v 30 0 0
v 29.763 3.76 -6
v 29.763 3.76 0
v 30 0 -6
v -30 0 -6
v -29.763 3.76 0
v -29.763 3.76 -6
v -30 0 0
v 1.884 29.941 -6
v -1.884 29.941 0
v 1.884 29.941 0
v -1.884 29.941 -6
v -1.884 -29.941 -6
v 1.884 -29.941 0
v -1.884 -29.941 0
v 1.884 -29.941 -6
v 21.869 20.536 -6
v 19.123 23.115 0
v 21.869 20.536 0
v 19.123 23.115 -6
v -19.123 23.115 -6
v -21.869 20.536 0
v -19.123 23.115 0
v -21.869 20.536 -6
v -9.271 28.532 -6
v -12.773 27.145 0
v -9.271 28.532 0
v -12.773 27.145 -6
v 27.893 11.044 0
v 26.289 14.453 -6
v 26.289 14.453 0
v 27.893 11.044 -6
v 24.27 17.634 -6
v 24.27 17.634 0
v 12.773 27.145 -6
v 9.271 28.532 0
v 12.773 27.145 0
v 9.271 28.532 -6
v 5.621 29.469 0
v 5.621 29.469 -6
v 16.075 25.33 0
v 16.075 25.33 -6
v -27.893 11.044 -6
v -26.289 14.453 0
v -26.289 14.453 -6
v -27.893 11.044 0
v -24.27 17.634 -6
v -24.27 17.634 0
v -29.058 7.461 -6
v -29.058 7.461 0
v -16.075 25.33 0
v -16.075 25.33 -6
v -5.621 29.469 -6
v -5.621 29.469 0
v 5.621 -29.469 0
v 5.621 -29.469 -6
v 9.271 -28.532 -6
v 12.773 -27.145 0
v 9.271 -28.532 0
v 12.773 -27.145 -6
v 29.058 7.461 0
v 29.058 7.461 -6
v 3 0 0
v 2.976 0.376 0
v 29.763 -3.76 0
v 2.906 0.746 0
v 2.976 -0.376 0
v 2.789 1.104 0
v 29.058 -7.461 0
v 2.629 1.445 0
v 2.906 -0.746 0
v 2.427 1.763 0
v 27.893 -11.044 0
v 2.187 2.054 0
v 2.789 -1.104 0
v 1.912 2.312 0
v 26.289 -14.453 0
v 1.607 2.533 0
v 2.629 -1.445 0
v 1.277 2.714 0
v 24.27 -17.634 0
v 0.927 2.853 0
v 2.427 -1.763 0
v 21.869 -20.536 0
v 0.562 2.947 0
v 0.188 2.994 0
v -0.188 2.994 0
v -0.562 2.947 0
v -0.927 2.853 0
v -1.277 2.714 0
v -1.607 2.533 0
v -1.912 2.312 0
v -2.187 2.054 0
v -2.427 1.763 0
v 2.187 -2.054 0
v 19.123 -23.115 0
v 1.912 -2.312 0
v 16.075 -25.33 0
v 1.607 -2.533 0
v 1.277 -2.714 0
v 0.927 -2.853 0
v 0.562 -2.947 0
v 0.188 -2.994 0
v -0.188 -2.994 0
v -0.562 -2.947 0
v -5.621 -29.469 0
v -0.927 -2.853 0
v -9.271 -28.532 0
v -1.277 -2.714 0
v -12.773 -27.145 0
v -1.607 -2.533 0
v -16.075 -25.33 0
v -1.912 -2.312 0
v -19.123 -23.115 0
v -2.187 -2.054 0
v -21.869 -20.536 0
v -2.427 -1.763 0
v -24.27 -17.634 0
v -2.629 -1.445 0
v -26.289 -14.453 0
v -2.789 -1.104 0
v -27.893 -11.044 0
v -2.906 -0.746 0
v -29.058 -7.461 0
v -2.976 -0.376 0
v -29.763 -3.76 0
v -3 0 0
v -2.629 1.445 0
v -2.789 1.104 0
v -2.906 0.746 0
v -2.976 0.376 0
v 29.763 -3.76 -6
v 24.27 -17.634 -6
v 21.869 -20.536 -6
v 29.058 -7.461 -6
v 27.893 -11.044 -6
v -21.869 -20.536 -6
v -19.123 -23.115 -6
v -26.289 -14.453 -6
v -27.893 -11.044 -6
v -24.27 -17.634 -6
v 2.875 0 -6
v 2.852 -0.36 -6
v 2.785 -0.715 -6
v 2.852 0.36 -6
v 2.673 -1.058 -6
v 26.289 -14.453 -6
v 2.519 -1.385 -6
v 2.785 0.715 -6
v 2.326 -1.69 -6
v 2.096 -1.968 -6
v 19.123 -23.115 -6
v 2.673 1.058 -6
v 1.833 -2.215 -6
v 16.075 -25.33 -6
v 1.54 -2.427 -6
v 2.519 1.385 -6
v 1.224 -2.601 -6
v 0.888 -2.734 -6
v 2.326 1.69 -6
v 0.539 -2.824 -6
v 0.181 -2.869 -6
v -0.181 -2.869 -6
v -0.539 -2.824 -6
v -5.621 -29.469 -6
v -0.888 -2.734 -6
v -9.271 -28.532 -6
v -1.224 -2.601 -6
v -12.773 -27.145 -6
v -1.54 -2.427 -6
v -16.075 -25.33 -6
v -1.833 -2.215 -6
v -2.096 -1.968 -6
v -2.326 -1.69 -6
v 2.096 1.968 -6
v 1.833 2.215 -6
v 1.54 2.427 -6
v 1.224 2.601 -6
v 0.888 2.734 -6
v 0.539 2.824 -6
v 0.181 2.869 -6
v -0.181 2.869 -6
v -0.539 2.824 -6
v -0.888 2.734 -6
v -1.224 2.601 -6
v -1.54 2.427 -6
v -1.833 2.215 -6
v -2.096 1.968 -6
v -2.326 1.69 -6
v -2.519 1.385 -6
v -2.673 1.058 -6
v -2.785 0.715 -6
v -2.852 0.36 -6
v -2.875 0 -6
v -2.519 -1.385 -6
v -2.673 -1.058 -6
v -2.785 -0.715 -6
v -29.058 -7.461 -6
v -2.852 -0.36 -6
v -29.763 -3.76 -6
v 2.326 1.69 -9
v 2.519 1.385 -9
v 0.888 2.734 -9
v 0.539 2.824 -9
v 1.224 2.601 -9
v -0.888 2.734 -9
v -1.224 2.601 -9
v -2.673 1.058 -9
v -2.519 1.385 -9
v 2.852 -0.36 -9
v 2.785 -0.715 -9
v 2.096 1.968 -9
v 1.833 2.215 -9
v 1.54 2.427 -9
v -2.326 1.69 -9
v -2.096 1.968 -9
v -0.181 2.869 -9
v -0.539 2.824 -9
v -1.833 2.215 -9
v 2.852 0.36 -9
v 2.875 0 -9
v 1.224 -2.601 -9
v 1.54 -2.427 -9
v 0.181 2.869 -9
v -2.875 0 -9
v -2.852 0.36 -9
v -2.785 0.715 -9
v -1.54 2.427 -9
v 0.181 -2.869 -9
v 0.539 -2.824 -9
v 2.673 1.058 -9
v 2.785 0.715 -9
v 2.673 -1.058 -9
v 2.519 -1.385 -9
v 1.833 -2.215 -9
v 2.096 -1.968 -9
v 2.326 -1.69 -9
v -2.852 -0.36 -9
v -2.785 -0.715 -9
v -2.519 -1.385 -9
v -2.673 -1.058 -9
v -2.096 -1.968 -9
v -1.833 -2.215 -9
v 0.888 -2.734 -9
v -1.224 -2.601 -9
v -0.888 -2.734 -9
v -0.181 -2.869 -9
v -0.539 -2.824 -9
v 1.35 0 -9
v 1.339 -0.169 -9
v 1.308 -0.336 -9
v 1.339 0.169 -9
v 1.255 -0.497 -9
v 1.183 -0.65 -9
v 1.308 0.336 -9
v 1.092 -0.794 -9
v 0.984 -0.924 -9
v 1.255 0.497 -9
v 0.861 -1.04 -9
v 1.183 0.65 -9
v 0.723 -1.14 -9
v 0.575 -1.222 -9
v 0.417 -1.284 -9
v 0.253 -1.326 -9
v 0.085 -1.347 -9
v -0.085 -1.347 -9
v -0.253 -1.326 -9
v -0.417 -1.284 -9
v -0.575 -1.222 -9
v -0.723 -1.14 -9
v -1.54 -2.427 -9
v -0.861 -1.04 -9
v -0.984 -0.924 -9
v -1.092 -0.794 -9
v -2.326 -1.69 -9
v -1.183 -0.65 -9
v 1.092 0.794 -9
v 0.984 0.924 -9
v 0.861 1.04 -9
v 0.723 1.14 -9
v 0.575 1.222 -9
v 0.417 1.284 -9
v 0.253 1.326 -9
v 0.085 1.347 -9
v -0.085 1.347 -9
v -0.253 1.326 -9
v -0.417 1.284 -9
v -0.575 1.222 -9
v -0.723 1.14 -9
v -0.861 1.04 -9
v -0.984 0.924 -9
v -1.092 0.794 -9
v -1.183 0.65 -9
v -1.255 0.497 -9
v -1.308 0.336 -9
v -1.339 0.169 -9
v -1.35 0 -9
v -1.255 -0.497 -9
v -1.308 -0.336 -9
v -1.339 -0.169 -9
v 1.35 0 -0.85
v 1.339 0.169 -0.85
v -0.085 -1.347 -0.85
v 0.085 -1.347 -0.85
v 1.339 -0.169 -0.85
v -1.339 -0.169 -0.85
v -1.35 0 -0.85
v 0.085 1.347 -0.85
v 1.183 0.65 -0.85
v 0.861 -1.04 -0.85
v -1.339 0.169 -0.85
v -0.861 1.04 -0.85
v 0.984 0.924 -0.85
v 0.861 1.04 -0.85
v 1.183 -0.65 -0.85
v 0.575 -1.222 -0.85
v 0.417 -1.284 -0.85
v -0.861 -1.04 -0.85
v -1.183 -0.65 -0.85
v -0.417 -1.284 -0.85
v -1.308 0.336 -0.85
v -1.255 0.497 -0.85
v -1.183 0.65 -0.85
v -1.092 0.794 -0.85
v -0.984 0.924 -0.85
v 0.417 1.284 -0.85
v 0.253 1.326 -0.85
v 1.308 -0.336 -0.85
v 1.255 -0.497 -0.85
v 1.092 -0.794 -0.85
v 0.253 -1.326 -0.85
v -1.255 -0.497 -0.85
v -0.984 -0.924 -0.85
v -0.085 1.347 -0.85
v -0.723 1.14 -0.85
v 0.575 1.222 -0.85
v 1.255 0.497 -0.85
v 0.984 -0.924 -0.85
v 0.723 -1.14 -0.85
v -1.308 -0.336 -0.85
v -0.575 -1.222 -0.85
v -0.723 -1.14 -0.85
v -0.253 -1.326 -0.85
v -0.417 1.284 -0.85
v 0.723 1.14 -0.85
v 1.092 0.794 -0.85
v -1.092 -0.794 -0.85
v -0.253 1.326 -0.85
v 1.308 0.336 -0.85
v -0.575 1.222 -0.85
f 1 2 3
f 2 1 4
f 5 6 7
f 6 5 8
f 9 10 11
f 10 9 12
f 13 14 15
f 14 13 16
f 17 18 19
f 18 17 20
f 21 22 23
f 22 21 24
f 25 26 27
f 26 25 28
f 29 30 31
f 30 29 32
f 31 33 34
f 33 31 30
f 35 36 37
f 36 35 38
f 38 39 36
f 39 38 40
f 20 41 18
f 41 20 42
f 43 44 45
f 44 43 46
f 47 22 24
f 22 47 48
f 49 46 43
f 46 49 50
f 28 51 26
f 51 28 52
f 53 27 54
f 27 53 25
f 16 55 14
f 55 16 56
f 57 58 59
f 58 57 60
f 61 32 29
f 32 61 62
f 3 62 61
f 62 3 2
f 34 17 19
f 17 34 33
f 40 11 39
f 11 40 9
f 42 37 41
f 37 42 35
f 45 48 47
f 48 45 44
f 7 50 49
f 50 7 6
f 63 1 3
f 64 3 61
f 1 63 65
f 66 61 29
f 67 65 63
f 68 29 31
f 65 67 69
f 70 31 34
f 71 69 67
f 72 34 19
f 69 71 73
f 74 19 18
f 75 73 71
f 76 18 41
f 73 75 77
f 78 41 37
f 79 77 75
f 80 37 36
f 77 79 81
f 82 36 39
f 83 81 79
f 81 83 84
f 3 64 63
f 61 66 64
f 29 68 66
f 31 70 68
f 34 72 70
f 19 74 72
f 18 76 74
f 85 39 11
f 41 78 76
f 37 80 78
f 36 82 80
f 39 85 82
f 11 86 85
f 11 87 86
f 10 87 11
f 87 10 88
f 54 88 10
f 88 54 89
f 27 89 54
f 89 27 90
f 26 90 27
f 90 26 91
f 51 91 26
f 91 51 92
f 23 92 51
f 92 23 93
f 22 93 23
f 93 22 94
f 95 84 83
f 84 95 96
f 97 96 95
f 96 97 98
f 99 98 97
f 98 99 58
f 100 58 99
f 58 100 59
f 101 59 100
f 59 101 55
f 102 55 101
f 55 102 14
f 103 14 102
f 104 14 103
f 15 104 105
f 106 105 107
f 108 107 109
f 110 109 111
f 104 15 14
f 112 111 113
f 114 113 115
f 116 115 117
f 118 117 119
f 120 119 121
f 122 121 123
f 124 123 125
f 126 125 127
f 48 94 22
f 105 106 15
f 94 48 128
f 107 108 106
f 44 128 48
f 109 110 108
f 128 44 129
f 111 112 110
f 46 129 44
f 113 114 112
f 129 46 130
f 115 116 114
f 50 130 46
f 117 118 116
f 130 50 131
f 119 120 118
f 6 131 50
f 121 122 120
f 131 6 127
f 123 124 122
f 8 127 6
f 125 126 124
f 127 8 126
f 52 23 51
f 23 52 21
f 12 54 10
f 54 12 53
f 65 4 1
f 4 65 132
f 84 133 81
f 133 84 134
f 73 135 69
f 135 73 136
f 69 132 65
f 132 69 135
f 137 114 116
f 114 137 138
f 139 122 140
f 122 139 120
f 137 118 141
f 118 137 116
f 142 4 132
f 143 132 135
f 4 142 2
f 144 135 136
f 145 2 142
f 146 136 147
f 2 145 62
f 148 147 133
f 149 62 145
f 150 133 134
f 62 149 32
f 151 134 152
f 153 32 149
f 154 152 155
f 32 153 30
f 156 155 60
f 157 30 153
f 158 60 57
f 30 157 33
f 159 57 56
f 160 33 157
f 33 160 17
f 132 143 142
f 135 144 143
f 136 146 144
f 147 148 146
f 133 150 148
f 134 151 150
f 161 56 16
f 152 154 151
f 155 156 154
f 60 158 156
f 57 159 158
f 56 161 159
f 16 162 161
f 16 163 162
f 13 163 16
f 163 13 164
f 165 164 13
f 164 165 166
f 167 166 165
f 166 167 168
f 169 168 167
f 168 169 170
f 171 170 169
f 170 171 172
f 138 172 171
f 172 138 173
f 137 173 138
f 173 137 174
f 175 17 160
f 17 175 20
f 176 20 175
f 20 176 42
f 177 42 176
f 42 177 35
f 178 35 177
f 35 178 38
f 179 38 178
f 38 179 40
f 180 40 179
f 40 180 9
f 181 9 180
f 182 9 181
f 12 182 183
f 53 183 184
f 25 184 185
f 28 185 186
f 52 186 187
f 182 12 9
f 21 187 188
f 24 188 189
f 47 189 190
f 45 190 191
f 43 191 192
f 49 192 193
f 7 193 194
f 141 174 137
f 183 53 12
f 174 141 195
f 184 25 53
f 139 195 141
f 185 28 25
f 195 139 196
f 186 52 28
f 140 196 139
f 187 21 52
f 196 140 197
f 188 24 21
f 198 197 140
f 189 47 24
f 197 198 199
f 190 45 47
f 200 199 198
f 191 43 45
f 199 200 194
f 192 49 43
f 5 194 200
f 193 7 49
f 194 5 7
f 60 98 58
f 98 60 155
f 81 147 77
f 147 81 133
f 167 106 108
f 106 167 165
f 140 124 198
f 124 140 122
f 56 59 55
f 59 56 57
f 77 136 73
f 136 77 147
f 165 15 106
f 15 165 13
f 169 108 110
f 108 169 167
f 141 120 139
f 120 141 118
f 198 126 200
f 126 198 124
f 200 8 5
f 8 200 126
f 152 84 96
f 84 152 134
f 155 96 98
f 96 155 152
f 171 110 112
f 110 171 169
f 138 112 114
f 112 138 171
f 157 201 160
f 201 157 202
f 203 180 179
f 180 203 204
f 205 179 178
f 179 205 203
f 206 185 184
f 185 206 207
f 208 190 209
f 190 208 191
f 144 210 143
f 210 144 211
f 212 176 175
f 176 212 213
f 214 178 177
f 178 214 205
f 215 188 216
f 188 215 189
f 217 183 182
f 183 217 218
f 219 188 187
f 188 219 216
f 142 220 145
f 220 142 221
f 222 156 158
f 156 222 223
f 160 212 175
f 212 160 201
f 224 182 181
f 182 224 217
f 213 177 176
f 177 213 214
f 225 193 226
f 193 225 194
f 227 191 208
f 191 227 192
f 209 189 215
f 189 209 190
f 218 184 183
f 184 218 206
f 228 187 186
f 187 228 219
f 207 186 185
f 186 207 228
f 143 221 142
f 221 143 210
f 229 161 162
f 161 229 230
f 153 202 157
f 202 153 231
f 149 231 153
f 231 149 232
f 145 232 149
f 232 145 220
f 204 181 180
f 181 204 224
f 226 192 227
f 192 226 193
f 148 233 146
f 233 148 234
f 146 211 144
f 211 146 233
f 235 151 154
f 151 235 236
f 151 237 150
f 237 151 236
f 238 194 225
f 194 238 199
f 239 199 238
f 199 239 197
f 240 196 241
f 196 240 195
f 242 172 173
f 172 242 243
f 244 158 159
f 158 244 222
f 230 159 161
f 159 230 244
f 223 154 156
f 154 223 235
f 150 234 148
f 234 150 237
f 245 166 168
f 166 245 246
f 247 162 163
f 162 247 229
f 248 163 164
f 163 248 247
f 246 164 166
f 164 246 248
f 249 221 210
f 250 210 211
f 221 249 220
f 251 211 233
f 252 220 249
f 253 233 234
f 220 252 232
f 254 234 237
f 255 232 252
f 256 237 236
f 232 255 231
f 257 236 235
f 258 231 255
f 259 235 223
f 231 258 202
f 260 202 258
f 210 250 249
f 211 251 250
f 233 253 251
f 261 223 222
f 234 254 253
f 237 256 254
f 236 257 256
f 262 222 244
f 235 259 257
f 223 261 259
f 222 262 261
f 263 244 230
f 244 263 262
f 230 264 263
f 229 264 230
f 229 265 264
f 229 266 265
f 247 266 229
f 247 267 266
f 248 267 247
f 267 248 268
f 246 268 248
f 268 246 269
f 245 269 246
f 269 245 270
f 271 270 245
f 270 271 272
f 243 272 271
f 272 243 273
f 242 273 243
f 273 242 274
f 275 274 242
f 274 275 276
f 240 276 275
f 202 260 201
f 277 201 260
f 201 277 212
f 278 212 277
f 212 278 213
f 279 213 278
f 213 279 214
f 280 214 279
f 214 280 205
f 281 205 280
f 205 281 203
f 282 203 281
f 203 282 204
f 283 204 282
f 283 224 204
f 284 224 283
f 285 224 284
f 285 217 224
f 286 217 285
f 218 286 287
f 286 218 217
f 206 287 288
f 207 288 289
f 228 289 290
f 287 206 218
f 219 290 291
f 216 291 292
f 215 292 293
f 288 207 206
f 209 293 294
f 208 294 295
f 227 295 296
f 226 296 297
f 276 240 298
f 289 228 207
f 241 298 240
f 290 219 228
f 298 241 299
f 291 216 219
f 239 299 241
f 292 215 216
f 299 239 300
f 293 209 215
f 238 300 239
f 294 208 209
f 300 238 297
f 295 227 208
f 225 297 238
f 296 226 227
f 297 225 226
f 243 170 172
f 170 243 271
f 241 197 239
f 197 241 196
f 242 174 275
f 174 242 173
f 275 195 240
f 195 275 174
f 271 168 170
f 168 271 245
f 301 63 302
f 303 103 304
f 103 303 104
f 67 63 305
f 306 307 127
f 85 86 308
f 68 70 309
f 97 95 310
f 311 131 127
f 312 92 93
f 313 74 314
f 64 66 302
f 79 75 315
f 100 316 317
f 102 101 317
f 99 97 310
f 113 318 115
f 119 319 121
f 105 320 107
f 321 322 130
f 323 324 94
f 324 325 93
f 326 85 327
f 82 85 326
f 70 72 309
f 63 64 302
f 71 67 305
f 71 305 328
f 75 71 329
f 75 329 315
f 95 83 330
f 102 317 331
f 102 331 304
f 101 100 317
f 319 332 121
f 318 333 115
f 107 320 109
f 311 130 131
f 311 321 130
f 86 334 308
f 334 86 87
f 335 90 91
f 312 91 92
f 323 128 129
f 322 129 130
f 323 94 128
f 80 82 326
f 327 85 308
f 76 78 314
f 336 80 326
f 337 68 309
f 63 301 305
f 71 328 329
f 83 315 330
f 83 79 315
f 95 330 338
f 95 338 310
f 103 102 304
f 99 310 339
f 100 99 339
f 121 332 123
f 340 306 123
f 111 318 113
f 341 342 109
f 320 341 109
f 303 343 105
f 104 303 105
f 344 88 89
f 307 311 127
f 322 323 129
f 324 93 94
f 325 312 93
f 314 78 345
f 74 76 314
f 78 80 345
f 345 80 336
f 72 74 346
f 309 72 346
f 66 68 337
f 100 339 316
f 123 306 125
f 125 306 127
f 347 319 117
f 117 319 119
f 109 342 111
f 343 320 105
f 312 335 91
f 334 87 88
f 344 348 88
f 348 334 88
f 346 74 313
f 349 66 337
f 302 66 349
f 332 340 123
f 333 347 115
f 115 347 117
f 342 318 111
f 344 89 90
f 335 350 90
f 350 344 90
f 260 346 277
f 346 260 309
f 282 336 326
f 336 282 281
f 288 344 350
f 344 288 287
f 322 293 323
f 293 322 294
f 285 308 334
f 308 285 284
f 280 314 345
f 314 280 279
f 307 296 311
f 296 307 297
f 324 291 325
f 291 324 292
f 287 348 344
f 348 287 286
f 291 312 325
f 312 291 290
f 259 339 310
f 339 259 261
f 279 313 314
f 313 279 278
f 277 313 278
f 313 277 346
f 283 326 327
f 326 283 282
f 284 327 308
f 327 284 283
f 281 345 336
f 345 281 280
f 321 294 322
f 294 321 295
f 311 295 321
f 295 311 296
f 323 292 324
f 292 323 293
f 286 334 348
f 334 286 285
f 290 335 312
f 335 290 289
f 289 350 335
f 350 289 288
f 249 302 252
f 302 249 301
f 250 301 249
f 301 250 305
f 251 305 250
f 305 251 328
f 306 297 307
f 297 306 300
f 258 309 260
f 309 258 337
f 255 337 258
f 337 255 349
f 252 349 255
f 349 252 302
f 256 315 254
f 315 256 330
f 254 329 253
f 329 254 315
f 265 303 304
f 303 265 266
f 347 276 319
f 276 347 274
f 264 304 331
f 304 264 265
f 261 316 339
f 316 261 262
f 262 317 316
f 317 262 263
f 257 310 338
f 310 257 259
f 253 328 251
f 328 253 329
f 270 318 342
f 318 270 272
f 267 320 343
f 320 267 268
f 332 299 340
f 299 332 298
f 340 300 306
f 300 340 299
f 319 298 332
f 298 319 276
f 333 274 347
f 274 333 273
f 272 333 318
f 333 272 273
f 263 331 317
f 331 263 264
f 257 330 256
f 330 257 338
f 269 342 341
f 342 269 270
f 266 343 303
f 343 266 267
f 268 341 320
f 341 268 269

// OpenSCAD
$fn = 50;


difference() {
	union() {
		translate(v = [0, 0, -6.0000000000]) {
			cylinder(h = 6, r = 30.0000000000);
		}
		translate(v = [0, 0, -9.0000000000]) {
			cylinder(h = 9, r = 2.8750000000);
		}
	}
	union() {
		translate(v = [0, 0, 0]) {
			rotate(a = [0, 0, 0]) {
				difference() {
					union() {
						translate(v = [0, 0, -9.0000000000]) {
							cylinder(h = 9, r = 1.0000000000);
						}
						translate(v = [0, 0, -0.8500000000]) {
							cylinder(h = 0.8500000000, r1 = 1.3500000000, r2 = 3.0000000000);
						}
						translate(v = [0, 0, -9.0000000000]) {
							cylinder(h = 9, r = 1.3500000000);
						}
						translate(v = [0, 0, -9.0000000000]) {
							cylinder(h = 9, r = 1.0000000000);
						}
					}
					union();
				}
			}
		}
	}
}
